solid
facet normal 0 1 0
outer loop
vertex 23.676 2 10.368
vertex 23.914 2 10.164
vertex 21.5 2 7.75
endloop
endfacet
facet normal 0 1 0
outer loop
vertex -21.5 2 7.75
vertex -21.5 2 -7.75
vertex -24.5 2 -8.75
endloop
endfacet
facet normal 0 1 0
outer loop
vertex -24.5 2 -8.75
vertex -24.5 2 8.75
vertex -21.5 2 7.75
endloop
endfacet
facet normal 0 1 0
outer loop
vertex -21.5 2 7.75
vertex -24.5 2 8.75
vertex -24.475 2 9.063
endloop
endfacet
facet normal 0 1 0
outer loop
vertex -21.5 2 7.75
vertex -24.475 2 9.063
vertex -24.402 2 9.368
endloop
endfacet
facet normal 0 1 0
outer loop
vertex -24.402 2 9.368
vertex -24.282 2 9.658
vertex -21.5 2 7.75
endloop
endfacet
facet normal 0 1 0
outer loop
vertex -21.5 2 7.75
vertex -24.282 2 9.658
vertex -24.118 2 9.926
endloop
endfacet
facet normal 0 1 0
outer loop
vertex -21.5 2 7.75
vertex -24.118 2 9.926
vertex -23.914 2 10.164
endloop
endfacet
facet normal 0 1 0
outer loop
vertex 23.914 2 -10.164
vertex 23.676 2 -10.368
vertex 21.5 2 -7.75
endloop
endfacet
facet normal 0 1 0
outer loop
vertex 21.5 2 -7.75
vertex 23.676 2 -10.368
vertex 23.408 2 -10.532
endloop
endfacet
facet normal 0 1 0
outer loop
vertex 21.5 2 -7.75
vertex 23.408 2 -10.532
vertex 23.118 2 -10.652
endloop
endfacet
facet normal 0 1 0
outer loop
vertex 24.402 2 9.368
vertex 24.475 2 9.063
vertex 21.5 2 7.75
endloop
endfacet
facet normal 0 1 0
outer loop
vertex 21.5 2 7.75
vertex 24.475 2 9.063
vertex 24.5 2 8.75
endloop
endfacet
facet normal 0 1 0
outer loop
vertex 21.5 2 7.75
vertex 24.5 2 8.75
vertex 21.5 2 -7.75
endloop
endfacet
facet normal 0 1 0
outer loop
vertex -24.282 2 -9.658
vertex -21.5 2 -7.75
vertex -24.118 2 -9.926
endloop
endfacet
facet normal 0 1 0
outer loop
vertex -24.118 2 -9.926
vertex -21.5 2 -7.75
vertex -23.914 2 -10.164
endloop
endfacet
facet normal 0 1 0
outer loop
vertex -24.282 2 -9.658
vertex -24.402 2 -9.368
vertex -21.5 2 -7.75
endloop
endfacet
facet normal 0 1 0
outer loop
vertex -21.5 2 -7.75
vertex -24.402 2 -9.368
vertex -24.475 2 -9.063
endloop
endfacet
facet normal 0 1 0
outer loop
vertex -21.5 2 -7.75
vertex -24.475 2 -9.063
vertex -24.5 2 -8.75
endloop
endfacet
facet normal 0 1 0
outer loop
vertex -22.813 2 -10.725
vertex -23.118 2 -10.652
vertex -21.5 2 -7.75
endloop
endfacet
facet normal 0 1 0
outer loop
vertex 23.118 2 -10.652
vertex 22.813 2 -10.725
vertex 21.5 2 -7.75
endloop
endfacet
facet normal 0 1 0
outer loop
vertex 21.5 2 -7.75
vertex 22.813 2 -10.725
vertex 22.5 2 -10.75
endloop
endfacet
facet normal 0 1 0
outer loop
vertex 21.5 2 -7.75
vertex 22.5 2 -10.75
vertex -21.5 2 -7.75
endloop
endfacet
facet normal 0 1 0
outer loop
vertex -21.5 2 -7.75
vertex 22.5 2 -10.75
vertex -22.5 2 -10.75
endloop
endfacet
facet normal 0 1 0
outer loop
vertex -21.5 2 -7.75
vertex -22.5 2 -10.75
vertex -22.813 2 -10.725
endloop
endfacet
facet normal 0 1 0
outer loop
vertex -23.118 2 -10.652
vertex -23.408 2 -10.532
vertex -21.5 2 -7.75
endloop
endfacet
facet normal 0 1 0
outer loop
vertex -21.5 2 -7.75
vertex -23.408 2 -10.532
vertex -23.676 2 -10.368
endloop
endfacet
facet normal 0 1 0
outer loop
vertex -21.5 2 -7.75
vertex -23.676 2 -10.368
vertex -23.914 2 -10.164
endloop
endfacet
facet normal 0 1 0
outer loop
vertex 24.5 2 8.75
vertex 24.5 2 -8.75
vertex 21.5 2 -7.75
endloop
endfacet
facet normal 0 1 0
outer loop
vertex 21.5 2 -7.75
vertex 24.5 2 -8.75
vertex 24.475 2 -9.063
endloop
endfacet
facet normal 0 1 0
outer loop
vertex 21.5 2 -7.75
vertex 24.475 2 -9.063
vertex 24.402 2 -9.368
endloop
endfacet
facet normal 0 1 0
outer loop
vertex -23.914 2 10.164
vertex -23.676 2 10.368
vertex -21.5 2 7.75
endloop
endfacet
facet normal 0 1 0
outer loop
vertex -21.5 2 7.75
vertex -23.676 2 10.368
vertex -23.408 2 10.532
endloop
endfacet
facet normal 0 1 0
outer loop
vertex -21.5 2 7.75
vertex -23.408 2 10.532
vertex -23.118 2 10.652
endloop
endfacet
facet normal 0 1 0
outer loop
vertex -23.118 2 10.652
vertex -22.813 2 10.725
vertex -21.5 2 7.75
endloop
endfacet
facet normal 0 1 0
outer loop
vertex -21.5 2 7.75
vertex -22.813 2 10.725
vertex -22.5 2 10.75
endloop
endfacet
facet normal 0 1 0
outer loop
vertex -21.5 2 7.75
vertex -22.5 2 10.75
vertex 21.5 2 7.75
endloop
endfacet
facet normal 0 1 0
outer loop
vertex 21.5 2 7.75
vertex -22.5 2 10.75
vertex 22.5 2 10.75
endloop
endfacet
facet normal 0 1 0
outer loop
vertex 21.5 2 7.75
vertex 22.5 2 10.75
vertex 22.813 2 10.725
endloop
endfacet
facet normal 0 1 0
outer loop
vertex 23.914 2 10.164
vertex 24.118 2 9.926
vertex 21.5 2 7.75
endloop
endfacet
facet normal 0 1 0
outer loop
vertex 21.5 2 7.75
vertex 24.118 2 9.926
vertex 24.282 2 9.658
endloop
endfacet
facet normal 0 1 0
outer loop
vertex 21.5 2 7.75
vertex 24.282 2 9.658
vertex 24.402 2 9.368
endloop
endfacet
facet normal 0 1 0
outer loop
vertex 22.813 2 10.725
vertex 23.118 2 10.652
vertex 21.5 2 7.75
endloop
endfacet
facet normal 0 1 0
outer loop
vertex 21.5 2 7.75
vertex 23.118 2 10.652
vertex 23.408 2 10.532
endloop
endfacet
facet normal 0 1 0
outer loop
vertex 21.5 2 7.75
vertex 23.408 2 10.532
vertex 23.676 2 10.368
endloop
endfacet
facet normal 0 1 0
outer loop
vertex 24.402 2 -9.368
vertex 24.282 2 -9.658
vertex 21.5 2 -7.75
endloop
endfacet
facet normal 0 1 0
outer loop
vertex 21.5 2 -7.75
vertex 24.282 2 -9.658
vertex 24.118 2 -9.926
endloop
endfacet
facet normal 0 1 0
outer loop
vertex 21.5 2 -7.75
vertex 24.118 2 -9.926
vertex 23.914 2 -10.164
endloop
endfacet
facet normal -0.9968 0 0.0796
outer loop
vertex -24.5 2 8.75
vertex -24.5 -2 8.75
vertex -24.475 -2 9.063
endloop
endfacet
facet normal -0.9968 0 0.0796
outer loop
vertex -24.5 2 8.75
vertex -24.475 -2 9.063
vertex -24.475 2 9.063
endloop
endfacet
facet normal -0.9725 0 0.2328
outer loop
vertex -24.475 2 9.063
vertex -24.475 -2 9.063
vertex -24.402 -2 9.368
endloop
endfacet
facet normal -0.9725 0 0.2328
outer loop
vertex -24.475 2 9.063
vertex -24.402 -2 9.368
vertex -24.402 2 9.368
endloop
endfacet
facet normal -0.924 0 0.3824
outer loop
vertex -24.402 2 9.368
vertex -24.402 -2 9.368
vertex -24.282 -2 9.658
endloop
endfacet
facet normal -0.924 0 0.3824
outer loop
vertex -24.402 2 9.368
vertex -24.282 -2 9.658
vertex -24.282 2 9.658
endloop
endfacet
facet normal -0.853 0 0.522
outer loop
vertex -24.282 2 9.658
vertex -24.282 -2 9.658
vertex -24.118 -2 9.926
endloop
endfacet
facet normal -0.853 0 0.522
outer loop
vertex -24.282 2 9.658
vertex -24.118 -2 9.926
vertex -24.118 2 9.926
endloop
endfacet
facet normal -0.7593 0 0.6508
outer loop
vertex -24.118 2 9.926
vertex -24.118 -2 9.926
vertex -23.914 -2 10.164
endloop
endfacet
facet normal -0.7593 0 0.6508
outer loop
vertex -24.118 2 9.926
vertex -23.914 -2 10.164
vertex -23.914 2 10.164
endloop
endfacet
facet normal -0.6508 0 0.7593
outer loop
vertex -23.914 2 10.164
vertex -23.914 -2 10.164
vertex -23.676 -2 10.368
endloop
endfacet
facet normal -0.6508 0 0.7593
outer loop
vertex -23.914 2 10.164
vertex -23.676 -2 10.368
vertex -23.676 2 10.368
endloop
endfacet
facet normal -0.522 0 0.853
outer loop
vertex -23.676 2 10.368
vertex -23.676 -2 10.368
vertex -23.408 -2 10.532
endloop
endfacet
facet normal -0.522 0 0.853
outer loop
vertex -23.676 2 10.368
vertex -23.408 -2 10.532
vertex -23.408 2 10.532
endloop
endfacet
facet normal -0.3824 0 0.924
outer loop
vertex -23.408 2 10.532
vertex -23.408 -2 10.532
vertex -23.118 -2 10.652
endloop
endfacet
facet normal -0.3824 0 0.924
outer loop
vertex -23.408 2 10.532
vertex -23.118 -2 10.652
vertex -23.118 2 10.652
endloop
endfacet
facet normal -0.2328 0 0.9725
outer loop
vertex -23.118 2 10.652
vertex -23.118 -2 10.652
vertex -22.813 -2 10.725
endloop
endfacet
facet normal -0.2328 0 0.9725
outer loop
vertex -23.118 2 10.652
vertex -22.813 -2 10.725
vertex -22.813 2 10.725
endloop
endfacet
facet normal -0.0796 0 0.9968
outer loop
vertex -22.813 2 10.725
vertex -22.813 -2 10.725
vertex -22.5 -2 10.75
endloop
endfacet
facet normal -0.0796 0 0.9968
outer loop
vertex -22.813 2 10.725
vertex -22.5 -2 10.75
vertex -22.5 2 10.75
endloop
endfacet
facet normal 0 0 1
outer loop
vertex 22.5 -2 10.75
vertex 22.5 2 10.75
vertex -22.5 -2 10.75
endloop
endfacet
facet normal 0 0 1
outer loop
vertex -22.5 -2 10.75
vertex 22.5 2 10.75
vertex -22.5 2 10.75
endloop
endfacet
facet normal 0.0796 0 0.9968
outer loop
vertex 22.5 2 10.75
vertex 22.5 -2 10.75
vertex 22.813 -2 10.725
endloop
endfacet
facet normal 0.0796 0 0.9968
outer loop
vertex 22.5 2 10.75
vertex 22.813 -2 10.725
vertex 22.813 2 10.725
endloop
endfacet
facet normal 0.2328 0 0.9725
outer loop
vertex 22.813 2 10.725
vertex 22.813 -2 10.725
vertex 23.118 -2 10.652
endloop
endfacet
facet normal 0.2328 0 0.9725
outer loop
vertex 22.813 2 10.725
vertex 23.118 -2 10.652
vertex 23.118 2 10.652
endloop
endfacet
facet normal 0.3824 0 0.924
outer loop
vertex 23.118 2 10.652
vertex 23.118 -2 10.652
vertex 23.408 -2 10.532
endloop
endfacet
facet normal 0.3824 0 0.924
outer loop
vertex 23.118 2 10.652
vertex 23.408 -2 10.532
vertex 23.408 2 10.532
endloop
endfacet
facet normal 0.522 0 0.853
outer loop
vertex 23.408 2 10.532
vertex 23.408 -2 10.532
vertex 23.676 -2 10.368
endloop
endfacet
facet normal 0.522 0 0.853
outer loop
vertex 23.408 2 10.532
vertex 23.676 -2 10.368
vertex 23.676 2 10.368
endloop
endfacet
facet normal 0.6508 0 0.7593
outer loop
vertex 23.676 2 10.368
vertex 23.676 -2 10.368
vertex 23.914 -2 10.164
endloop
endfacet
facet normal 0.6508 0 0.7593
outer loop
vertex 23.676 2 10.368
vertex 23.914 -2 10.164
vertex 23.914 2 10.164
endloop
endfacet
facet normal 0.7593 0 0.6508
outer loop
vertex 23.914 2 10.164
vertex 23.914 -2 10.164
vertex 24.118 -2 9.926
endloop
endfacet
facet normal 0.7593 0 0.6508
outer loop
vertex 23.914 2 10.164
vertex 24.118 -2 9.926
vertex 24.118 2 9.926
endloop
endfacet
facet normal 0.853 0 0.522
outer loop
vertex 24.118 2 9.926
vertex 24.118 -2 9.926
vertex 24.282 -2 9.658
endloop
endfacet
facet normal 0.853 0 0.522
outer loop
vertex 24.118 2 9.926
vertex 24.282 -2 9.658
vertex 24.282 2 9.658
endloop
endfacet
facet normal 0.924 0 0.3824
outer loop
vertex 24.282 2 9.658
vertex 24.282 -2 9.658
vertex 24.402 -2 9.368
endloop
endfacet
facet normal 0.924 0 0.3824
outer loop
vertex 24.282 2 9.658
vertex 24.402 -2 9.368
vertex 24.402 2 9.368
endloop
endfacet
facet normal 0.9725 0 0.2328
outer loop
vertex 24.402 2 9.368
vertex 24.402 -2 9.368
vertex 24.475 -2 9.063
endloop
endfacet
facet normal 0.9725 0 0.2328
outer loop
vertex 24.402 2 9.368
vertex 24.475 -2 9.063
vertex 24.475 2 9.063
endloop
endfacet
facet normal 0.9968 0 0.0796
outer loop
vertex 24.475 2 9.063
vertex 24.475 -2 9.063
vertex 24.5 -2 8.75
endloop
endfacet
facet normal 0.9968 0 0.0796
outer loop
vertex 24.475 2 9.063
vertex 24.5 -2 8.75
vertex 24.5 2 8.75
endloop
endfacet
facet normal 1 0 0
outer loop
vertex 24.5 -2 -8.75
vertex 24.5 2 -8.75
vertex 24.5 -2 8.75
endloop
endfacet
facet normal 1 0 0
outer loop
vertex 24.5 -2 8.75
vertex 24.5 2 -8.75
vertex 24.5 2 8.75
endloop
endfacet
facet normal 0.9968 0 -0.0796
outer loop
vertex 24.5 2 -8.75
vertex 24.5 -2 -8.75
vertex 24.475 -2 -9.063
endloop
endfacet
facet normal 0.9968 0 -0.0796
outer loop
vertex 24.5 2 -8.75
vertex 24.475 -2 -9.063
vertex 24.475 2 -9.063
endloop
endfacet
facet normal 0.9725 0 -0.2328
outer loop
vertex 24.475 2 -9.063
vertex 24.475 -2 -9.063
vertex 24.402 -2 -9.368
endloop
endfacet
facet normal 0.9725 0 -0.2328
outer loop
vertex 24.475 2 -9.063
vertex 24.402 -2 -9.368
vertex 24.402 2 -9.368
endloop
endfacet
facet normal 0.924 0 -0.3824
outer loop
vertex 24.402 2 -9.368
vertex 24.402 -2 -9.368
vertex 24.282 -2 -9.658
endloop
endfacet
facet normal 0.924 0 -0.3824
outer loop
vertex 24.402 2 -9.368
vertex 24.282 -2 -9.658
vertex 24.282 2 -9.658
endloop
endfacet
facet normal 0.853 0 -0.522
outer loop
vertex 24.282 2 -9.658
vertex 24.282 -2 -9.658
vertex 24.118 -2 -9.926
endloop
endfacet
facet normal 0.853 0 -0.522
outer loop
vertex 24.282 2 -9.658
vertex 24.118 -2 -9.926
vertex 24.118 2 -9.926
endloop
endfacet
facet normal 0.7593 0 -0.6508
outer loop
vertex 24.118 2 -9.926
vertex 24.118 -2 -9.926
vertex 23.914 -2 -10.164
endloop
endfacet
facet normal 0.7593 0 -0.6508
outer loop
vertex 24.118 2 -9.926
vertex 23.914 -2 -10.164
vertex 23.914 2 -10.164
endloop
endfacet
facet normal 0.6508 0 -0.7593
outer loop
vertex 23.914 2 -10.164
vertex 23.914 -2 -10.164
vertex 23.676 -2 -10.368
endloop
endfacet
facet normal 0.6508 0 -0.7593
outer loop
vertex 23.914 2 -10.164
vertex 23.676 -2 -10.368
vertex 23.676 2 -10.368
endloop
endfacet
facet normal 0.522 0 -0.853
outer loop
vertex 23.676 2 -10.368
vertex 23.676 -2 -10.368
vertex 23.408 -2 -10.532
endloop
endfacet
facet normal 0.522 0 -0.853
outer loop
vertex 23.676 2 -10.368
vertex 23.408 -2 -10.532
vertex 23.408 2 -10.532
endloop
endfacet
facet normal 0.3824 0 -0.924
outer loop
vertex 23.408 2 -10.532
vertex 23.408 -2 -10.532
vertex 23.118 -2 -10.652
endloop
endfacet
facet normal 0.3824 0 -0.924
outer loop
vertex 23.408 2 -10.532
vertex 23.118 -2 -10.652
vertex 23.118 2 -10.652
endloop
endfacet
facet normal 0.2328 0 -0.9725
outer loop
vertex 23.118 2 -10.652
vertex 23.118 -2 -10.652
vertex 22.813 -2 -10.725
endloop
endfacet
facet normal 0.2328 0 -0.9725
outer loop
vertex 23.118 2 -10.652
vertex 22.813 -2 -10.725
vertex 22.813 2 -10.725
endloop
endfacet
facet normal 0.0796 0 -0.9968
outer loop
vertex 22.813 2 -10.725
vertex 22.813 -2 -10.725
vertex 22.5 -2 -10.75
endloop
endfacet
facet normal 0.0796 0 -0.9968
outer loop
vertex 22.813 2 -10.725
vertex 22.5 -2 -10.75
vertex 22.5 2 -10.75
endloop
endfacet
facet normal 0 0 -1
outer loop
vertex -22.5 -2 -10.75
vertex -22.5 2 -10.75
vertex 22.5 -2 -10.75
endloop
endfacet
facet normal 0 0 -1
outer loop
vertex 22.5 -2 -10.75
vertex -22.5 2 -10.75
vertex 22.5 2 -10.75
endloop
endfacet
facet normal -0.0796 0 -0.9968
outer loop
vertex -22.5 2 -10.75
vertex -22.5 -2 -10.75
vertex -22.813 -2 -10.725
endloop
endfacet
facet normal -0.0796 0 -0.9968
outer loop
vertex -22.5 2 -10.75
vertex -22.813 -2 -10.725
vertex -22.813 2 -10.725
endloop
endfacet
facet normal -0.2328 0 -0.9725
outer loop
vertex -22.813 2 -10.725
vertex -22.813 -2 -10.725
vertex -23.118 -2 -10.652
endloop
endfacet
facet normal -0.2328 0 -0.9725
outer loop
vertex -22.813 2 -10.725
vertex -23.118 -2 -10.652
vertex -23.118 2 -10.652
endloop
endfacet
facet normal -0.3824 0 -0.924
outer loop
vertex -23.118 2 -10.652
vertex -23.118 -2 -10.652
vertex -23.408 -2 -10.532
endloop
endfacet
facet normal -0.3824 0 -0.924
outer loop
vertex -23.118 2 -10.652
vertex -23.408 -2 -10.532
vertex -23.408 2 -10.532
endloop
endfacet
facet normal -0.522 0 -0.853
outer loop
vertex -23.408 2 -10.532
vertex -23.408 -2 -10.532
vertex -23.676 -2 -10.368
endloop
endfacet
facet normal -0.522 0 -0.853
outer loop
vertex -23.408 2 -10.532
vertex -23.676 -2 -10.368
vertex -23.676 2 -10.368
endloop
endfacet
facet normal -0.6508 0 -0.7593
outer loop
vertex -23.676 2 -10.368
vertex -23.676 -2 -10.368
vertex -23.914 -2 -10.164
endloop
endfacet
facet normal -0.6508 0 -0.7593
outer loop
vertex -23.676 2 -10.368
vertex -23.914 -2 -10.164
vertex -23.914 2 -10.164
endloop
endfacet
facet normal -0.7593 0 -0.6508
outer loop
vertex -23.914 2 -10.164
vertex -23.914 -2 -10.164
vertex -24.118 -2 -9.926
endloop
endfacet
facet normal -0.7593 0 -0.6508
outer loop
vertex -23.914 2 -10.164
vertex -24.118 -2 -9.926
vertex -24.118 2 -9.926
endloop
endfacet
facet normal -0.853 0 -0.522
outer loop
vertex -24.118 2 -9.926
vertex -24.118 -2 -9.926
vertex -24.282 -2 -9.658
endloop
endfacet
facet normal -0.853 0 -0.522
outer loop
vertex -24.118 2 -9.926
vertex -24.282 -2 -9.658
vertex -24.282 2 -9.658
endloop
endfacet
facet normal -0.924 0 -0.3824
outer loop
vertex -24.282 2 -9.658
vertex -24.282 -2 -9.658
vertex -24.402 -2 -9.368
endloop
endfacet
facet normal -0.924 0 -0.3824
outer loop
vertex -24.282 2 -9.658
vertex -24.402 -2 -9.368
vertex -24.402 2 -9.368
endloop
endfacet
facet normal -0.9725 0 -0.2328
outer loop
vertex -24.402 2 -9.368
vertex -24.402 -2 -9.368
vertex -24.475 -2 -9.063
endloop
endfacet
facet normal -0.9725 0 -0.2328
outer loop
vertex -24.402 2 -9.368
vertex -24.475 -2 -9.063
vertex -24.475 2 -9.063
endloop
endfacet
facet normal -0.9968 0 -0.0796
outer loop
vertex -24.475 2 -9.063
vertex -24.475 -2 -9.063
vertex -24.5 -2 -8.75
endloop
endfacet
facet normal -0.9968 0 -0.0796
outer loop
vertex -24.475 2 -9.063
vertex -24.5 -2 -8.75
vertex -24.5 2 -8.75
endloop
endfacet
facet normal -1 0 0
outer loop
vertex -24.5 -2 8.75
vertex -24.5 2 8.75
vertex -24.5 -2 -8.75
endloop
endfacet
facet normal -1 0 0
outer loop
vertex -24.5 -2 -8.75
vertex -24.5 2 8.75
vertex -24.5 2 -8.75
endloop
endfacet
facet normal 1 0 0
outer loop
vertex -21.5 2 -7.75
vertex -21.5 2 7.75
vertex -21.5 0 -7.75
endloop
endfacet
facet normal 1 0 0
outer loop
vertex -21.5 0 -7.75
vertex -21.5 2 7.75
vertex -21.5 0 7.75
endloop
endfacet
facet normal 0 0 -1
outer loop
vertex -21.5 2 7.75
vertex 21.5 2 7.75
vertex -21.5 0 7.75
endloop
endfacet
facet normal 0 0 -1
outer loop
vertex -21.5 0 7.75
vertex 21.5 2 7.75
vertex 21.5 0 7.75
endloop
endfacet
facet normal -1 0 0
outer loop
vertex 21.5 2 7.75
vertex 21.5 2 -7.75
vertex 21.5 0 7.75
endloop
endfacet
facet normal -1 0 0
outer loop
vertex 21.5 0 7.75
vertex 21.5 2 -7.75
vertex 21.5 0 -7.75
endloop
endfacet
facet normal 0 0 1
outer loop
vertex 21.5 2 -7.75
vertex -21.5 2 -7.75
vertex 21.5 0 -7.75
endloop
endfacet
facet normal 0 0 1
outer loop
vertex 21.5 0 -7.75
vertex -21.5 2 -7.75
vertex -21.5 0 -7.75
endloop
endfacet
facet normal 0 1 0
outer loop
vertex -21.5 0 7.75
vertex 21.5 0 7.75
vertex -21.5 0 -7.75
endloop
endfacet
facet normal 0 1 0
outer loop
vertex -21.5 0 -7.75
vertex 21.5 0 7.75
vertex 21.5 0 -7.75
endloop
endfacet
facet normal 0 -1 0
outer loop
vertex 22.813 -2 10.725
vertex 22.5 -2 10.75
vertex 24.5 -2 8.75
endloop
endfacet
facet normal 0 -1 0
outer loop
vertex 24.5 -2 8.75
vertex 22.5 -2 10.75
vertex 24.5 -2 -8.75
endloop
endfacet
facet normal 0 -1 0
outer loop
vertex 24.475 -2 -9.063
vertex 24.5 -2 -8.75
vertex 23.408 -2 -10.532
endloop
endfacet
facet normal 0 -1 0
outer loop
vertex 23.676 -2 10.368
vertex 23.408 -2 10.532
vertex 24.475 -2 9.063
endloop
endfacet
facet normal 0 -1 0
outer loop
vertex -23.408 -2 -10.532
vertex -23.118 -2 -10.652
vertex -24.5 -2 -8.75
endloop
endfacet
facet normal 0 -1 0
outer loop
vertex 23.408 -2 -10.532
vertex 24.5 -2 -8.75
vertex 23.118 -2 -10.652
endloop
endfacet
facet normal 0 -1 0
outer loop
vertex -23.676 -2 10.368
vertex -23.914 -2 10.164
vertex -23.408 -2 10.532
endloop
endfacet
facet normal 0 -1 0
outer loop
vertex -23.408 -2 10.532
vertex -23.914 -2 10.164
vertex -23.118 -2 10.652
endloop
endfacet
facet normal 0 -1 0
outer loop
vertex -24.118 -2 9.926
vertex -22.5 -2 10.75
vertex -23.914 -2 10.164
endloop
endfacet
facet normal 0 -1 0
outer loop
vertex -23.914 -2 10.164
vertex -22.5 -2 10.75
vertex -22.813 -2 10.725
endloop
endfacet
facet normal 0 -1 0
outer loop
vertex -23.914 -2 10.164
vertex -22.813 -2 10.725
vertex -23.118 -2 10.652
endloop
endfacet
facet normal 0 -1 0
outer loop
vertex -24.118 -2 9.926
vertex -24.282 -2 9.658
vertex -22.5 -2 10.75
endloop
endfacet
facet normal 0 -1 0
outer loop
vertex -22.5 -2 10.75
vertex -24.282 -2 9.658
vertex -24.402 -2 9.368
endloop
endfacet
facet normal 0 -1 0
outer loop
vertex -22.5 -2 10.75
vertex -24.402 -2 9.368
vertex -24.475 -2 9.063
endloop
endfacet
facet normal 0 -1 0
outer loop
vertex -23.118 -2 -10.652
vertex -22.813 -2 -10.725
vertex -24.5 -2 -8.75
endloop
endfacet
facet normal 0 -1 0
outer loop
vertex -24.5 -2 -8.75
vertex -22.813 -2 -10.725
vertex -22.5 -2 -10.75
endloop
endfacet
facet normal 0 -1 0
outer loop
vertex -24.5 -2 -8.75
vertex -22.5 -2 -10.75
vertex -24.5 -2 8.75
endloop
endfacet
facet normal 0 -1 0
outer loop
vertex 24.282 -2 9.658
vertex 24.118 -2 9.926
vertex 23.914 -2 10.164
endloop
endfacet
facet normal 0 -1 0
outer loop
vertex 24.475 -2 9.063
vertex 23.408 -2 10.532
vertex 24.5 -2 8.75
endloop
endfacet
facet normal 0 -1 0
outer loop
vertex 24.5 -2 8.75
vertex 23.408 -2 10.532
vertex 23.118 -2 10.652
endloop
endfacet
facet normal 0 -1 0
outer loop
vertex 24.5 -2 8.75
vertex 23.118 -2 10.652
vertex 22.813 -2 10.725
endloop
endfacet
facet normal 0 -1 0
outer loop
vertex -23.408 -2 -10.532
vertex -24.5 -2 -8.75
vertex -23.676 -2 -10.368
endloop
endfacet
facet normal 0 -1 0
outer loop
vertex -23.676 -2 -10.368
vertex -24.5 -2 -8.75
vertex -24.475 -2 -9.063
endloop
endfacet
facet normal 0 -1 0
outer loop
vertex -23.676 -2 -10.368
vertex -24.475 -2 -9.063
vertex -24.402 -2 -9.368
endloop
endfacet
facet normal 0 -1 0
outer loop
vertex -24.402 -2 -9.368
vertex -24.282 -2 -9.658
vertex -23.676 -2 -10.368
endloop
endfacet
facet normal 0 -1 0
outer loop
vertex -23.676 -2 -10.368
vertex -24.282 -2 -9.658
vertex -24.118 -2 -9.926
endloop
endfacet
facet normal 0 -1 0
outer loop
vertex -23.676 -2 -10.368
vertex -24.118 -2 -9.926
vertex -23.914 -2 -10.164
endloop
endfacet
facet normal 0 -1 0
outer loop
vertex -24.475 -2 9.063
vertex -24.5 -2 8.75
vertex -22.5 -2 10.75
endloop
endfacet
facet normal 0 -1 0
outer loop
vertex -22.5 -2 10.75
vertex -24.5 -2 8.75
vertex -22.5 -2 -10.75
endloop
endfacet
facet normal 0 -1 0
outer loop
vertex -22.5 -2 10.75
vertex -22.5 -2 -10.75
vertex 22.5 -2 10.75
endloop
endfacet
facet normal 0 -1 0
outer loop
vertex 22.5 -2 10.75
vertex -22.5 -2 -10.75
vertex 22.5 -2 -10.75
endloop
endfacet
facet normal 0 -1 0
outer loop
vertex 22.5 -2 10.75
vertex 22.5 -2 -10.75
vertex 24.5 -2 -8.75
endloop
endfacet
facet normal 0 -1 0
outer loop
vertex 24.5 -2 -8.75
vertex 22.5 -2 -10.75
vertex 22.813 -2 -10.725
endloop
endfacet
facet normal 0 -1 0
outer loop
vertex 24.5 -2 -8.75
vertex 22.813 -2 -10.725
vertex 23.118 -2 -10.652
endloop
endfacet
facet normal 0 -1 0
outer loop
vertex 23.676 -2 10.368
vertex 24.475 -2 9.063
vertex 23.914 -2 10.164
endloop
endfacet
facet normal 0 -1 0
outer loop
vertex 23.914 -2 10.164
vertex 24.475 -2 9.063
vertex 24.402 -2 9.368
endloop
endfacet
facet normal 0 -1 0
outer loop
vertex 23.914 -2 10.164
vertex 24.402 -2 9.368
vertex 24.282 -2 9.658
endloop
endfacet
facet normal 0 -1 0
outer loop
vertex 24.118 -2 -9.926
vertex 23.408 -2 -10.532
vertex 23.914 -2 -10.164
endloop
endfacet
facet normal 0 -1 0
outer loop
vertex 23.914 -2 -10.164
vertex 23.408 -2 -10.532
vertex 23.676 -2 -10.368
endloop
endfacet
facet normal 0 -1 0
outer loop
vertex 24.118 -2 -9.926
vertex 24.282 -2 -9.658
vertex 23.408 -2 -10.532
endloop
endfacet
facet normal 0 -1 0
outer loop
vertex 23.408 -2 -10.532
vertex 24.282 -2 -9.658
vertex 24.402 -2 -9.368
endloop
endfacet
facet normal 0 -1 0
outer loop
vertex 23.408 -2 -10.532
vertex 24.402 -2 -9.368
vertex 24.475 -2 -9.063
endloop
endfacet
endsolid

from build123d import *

# Parameters (mm, degrees)
CROQUIS1_W              = 43
CROQUIS1_H              = 15.5
SALIENTE_EXTRUIR1_DEPTH = 2
SALIENTE_EXTRUIR2_START = -2
SALIENTE_EXTRUIR2_DEPTH = 2


with BuildPart() as part:
    # Croquis1 → Saliente-Extruir1 (new body)
    with BuildSketch(Plane(origin=(0, 0, 0), x_dir=(1, 0, 0), z_dir=(0, 1, 0))):
        with BuildLine():
            Line((-24.5, 8.75), (-24.5, -8.75))
            ThreePointArc((-24.5, -8.75), (-23.914213562, -10.164213562), (-22.5, -10.75))
            Line((-22.5, -10.75), (22.5, -10.75))
            ThreePointArc((22.5, -10.75), (23.914213562, -10.164213562), (24.5, -8.75))
            Line((24.5, -8.75), (24.5, 8.75))
            ThreePointArc((24.5, 8.75), (23.914213562, 10.164213562), (22.5, 10.75))
            Line((22.5, 10.75), (-22.5, 10.75))
            ThreePointArc((-22.5, 10.75), (-23.914213562, 10.164213562), (-24.5, 8.75))
        make_face()
        Rectangle(CROQUIS1_W, CROQUIS1_H, mode=Mode.SUBTRACT)
    extrude(amount=SALIENTE_EXTRUIR1_DEPTH)

    # Croquis2 → Saliente-Extruir2 (add)
    with BuildSketch(Plane(origin=(0, 0, 0), x_dir=(1, 0, 0), z_dir=(0, 1, 0)).offset(SALIENTE_EXTRUIR2_START)):
        with BuildLine():
            Line((-24.5, 8.75), (-24.5, -8.75))
            ThreePointArc((-24.5, -8.75), (-23.914213562, -10.164213562), (-22.5, -10.75))
            Line((-22.5, -10.75), (22.5, -10.75))
            ThreePointArc((22.5, -10.75), (23.914213562, -10.164213562), (24.5, -8.75))
            Line((24.5, -8.75), (24.5, 8.75))
            ThreePointArc((24.5, 8.75), (23.914213562, 10.164213562), (22.5, 10.75))
            Line((22.5, 10.75), (-22.5, 10.75))
            ThreePointArc((-22.5, 10.75), (-23.914213562, 10.164213562), (-24.5, 8.75))
        make_face()
    extrude(amount=SALIENTE_EXTRUIR2_DEPTH)


solid = part.part
